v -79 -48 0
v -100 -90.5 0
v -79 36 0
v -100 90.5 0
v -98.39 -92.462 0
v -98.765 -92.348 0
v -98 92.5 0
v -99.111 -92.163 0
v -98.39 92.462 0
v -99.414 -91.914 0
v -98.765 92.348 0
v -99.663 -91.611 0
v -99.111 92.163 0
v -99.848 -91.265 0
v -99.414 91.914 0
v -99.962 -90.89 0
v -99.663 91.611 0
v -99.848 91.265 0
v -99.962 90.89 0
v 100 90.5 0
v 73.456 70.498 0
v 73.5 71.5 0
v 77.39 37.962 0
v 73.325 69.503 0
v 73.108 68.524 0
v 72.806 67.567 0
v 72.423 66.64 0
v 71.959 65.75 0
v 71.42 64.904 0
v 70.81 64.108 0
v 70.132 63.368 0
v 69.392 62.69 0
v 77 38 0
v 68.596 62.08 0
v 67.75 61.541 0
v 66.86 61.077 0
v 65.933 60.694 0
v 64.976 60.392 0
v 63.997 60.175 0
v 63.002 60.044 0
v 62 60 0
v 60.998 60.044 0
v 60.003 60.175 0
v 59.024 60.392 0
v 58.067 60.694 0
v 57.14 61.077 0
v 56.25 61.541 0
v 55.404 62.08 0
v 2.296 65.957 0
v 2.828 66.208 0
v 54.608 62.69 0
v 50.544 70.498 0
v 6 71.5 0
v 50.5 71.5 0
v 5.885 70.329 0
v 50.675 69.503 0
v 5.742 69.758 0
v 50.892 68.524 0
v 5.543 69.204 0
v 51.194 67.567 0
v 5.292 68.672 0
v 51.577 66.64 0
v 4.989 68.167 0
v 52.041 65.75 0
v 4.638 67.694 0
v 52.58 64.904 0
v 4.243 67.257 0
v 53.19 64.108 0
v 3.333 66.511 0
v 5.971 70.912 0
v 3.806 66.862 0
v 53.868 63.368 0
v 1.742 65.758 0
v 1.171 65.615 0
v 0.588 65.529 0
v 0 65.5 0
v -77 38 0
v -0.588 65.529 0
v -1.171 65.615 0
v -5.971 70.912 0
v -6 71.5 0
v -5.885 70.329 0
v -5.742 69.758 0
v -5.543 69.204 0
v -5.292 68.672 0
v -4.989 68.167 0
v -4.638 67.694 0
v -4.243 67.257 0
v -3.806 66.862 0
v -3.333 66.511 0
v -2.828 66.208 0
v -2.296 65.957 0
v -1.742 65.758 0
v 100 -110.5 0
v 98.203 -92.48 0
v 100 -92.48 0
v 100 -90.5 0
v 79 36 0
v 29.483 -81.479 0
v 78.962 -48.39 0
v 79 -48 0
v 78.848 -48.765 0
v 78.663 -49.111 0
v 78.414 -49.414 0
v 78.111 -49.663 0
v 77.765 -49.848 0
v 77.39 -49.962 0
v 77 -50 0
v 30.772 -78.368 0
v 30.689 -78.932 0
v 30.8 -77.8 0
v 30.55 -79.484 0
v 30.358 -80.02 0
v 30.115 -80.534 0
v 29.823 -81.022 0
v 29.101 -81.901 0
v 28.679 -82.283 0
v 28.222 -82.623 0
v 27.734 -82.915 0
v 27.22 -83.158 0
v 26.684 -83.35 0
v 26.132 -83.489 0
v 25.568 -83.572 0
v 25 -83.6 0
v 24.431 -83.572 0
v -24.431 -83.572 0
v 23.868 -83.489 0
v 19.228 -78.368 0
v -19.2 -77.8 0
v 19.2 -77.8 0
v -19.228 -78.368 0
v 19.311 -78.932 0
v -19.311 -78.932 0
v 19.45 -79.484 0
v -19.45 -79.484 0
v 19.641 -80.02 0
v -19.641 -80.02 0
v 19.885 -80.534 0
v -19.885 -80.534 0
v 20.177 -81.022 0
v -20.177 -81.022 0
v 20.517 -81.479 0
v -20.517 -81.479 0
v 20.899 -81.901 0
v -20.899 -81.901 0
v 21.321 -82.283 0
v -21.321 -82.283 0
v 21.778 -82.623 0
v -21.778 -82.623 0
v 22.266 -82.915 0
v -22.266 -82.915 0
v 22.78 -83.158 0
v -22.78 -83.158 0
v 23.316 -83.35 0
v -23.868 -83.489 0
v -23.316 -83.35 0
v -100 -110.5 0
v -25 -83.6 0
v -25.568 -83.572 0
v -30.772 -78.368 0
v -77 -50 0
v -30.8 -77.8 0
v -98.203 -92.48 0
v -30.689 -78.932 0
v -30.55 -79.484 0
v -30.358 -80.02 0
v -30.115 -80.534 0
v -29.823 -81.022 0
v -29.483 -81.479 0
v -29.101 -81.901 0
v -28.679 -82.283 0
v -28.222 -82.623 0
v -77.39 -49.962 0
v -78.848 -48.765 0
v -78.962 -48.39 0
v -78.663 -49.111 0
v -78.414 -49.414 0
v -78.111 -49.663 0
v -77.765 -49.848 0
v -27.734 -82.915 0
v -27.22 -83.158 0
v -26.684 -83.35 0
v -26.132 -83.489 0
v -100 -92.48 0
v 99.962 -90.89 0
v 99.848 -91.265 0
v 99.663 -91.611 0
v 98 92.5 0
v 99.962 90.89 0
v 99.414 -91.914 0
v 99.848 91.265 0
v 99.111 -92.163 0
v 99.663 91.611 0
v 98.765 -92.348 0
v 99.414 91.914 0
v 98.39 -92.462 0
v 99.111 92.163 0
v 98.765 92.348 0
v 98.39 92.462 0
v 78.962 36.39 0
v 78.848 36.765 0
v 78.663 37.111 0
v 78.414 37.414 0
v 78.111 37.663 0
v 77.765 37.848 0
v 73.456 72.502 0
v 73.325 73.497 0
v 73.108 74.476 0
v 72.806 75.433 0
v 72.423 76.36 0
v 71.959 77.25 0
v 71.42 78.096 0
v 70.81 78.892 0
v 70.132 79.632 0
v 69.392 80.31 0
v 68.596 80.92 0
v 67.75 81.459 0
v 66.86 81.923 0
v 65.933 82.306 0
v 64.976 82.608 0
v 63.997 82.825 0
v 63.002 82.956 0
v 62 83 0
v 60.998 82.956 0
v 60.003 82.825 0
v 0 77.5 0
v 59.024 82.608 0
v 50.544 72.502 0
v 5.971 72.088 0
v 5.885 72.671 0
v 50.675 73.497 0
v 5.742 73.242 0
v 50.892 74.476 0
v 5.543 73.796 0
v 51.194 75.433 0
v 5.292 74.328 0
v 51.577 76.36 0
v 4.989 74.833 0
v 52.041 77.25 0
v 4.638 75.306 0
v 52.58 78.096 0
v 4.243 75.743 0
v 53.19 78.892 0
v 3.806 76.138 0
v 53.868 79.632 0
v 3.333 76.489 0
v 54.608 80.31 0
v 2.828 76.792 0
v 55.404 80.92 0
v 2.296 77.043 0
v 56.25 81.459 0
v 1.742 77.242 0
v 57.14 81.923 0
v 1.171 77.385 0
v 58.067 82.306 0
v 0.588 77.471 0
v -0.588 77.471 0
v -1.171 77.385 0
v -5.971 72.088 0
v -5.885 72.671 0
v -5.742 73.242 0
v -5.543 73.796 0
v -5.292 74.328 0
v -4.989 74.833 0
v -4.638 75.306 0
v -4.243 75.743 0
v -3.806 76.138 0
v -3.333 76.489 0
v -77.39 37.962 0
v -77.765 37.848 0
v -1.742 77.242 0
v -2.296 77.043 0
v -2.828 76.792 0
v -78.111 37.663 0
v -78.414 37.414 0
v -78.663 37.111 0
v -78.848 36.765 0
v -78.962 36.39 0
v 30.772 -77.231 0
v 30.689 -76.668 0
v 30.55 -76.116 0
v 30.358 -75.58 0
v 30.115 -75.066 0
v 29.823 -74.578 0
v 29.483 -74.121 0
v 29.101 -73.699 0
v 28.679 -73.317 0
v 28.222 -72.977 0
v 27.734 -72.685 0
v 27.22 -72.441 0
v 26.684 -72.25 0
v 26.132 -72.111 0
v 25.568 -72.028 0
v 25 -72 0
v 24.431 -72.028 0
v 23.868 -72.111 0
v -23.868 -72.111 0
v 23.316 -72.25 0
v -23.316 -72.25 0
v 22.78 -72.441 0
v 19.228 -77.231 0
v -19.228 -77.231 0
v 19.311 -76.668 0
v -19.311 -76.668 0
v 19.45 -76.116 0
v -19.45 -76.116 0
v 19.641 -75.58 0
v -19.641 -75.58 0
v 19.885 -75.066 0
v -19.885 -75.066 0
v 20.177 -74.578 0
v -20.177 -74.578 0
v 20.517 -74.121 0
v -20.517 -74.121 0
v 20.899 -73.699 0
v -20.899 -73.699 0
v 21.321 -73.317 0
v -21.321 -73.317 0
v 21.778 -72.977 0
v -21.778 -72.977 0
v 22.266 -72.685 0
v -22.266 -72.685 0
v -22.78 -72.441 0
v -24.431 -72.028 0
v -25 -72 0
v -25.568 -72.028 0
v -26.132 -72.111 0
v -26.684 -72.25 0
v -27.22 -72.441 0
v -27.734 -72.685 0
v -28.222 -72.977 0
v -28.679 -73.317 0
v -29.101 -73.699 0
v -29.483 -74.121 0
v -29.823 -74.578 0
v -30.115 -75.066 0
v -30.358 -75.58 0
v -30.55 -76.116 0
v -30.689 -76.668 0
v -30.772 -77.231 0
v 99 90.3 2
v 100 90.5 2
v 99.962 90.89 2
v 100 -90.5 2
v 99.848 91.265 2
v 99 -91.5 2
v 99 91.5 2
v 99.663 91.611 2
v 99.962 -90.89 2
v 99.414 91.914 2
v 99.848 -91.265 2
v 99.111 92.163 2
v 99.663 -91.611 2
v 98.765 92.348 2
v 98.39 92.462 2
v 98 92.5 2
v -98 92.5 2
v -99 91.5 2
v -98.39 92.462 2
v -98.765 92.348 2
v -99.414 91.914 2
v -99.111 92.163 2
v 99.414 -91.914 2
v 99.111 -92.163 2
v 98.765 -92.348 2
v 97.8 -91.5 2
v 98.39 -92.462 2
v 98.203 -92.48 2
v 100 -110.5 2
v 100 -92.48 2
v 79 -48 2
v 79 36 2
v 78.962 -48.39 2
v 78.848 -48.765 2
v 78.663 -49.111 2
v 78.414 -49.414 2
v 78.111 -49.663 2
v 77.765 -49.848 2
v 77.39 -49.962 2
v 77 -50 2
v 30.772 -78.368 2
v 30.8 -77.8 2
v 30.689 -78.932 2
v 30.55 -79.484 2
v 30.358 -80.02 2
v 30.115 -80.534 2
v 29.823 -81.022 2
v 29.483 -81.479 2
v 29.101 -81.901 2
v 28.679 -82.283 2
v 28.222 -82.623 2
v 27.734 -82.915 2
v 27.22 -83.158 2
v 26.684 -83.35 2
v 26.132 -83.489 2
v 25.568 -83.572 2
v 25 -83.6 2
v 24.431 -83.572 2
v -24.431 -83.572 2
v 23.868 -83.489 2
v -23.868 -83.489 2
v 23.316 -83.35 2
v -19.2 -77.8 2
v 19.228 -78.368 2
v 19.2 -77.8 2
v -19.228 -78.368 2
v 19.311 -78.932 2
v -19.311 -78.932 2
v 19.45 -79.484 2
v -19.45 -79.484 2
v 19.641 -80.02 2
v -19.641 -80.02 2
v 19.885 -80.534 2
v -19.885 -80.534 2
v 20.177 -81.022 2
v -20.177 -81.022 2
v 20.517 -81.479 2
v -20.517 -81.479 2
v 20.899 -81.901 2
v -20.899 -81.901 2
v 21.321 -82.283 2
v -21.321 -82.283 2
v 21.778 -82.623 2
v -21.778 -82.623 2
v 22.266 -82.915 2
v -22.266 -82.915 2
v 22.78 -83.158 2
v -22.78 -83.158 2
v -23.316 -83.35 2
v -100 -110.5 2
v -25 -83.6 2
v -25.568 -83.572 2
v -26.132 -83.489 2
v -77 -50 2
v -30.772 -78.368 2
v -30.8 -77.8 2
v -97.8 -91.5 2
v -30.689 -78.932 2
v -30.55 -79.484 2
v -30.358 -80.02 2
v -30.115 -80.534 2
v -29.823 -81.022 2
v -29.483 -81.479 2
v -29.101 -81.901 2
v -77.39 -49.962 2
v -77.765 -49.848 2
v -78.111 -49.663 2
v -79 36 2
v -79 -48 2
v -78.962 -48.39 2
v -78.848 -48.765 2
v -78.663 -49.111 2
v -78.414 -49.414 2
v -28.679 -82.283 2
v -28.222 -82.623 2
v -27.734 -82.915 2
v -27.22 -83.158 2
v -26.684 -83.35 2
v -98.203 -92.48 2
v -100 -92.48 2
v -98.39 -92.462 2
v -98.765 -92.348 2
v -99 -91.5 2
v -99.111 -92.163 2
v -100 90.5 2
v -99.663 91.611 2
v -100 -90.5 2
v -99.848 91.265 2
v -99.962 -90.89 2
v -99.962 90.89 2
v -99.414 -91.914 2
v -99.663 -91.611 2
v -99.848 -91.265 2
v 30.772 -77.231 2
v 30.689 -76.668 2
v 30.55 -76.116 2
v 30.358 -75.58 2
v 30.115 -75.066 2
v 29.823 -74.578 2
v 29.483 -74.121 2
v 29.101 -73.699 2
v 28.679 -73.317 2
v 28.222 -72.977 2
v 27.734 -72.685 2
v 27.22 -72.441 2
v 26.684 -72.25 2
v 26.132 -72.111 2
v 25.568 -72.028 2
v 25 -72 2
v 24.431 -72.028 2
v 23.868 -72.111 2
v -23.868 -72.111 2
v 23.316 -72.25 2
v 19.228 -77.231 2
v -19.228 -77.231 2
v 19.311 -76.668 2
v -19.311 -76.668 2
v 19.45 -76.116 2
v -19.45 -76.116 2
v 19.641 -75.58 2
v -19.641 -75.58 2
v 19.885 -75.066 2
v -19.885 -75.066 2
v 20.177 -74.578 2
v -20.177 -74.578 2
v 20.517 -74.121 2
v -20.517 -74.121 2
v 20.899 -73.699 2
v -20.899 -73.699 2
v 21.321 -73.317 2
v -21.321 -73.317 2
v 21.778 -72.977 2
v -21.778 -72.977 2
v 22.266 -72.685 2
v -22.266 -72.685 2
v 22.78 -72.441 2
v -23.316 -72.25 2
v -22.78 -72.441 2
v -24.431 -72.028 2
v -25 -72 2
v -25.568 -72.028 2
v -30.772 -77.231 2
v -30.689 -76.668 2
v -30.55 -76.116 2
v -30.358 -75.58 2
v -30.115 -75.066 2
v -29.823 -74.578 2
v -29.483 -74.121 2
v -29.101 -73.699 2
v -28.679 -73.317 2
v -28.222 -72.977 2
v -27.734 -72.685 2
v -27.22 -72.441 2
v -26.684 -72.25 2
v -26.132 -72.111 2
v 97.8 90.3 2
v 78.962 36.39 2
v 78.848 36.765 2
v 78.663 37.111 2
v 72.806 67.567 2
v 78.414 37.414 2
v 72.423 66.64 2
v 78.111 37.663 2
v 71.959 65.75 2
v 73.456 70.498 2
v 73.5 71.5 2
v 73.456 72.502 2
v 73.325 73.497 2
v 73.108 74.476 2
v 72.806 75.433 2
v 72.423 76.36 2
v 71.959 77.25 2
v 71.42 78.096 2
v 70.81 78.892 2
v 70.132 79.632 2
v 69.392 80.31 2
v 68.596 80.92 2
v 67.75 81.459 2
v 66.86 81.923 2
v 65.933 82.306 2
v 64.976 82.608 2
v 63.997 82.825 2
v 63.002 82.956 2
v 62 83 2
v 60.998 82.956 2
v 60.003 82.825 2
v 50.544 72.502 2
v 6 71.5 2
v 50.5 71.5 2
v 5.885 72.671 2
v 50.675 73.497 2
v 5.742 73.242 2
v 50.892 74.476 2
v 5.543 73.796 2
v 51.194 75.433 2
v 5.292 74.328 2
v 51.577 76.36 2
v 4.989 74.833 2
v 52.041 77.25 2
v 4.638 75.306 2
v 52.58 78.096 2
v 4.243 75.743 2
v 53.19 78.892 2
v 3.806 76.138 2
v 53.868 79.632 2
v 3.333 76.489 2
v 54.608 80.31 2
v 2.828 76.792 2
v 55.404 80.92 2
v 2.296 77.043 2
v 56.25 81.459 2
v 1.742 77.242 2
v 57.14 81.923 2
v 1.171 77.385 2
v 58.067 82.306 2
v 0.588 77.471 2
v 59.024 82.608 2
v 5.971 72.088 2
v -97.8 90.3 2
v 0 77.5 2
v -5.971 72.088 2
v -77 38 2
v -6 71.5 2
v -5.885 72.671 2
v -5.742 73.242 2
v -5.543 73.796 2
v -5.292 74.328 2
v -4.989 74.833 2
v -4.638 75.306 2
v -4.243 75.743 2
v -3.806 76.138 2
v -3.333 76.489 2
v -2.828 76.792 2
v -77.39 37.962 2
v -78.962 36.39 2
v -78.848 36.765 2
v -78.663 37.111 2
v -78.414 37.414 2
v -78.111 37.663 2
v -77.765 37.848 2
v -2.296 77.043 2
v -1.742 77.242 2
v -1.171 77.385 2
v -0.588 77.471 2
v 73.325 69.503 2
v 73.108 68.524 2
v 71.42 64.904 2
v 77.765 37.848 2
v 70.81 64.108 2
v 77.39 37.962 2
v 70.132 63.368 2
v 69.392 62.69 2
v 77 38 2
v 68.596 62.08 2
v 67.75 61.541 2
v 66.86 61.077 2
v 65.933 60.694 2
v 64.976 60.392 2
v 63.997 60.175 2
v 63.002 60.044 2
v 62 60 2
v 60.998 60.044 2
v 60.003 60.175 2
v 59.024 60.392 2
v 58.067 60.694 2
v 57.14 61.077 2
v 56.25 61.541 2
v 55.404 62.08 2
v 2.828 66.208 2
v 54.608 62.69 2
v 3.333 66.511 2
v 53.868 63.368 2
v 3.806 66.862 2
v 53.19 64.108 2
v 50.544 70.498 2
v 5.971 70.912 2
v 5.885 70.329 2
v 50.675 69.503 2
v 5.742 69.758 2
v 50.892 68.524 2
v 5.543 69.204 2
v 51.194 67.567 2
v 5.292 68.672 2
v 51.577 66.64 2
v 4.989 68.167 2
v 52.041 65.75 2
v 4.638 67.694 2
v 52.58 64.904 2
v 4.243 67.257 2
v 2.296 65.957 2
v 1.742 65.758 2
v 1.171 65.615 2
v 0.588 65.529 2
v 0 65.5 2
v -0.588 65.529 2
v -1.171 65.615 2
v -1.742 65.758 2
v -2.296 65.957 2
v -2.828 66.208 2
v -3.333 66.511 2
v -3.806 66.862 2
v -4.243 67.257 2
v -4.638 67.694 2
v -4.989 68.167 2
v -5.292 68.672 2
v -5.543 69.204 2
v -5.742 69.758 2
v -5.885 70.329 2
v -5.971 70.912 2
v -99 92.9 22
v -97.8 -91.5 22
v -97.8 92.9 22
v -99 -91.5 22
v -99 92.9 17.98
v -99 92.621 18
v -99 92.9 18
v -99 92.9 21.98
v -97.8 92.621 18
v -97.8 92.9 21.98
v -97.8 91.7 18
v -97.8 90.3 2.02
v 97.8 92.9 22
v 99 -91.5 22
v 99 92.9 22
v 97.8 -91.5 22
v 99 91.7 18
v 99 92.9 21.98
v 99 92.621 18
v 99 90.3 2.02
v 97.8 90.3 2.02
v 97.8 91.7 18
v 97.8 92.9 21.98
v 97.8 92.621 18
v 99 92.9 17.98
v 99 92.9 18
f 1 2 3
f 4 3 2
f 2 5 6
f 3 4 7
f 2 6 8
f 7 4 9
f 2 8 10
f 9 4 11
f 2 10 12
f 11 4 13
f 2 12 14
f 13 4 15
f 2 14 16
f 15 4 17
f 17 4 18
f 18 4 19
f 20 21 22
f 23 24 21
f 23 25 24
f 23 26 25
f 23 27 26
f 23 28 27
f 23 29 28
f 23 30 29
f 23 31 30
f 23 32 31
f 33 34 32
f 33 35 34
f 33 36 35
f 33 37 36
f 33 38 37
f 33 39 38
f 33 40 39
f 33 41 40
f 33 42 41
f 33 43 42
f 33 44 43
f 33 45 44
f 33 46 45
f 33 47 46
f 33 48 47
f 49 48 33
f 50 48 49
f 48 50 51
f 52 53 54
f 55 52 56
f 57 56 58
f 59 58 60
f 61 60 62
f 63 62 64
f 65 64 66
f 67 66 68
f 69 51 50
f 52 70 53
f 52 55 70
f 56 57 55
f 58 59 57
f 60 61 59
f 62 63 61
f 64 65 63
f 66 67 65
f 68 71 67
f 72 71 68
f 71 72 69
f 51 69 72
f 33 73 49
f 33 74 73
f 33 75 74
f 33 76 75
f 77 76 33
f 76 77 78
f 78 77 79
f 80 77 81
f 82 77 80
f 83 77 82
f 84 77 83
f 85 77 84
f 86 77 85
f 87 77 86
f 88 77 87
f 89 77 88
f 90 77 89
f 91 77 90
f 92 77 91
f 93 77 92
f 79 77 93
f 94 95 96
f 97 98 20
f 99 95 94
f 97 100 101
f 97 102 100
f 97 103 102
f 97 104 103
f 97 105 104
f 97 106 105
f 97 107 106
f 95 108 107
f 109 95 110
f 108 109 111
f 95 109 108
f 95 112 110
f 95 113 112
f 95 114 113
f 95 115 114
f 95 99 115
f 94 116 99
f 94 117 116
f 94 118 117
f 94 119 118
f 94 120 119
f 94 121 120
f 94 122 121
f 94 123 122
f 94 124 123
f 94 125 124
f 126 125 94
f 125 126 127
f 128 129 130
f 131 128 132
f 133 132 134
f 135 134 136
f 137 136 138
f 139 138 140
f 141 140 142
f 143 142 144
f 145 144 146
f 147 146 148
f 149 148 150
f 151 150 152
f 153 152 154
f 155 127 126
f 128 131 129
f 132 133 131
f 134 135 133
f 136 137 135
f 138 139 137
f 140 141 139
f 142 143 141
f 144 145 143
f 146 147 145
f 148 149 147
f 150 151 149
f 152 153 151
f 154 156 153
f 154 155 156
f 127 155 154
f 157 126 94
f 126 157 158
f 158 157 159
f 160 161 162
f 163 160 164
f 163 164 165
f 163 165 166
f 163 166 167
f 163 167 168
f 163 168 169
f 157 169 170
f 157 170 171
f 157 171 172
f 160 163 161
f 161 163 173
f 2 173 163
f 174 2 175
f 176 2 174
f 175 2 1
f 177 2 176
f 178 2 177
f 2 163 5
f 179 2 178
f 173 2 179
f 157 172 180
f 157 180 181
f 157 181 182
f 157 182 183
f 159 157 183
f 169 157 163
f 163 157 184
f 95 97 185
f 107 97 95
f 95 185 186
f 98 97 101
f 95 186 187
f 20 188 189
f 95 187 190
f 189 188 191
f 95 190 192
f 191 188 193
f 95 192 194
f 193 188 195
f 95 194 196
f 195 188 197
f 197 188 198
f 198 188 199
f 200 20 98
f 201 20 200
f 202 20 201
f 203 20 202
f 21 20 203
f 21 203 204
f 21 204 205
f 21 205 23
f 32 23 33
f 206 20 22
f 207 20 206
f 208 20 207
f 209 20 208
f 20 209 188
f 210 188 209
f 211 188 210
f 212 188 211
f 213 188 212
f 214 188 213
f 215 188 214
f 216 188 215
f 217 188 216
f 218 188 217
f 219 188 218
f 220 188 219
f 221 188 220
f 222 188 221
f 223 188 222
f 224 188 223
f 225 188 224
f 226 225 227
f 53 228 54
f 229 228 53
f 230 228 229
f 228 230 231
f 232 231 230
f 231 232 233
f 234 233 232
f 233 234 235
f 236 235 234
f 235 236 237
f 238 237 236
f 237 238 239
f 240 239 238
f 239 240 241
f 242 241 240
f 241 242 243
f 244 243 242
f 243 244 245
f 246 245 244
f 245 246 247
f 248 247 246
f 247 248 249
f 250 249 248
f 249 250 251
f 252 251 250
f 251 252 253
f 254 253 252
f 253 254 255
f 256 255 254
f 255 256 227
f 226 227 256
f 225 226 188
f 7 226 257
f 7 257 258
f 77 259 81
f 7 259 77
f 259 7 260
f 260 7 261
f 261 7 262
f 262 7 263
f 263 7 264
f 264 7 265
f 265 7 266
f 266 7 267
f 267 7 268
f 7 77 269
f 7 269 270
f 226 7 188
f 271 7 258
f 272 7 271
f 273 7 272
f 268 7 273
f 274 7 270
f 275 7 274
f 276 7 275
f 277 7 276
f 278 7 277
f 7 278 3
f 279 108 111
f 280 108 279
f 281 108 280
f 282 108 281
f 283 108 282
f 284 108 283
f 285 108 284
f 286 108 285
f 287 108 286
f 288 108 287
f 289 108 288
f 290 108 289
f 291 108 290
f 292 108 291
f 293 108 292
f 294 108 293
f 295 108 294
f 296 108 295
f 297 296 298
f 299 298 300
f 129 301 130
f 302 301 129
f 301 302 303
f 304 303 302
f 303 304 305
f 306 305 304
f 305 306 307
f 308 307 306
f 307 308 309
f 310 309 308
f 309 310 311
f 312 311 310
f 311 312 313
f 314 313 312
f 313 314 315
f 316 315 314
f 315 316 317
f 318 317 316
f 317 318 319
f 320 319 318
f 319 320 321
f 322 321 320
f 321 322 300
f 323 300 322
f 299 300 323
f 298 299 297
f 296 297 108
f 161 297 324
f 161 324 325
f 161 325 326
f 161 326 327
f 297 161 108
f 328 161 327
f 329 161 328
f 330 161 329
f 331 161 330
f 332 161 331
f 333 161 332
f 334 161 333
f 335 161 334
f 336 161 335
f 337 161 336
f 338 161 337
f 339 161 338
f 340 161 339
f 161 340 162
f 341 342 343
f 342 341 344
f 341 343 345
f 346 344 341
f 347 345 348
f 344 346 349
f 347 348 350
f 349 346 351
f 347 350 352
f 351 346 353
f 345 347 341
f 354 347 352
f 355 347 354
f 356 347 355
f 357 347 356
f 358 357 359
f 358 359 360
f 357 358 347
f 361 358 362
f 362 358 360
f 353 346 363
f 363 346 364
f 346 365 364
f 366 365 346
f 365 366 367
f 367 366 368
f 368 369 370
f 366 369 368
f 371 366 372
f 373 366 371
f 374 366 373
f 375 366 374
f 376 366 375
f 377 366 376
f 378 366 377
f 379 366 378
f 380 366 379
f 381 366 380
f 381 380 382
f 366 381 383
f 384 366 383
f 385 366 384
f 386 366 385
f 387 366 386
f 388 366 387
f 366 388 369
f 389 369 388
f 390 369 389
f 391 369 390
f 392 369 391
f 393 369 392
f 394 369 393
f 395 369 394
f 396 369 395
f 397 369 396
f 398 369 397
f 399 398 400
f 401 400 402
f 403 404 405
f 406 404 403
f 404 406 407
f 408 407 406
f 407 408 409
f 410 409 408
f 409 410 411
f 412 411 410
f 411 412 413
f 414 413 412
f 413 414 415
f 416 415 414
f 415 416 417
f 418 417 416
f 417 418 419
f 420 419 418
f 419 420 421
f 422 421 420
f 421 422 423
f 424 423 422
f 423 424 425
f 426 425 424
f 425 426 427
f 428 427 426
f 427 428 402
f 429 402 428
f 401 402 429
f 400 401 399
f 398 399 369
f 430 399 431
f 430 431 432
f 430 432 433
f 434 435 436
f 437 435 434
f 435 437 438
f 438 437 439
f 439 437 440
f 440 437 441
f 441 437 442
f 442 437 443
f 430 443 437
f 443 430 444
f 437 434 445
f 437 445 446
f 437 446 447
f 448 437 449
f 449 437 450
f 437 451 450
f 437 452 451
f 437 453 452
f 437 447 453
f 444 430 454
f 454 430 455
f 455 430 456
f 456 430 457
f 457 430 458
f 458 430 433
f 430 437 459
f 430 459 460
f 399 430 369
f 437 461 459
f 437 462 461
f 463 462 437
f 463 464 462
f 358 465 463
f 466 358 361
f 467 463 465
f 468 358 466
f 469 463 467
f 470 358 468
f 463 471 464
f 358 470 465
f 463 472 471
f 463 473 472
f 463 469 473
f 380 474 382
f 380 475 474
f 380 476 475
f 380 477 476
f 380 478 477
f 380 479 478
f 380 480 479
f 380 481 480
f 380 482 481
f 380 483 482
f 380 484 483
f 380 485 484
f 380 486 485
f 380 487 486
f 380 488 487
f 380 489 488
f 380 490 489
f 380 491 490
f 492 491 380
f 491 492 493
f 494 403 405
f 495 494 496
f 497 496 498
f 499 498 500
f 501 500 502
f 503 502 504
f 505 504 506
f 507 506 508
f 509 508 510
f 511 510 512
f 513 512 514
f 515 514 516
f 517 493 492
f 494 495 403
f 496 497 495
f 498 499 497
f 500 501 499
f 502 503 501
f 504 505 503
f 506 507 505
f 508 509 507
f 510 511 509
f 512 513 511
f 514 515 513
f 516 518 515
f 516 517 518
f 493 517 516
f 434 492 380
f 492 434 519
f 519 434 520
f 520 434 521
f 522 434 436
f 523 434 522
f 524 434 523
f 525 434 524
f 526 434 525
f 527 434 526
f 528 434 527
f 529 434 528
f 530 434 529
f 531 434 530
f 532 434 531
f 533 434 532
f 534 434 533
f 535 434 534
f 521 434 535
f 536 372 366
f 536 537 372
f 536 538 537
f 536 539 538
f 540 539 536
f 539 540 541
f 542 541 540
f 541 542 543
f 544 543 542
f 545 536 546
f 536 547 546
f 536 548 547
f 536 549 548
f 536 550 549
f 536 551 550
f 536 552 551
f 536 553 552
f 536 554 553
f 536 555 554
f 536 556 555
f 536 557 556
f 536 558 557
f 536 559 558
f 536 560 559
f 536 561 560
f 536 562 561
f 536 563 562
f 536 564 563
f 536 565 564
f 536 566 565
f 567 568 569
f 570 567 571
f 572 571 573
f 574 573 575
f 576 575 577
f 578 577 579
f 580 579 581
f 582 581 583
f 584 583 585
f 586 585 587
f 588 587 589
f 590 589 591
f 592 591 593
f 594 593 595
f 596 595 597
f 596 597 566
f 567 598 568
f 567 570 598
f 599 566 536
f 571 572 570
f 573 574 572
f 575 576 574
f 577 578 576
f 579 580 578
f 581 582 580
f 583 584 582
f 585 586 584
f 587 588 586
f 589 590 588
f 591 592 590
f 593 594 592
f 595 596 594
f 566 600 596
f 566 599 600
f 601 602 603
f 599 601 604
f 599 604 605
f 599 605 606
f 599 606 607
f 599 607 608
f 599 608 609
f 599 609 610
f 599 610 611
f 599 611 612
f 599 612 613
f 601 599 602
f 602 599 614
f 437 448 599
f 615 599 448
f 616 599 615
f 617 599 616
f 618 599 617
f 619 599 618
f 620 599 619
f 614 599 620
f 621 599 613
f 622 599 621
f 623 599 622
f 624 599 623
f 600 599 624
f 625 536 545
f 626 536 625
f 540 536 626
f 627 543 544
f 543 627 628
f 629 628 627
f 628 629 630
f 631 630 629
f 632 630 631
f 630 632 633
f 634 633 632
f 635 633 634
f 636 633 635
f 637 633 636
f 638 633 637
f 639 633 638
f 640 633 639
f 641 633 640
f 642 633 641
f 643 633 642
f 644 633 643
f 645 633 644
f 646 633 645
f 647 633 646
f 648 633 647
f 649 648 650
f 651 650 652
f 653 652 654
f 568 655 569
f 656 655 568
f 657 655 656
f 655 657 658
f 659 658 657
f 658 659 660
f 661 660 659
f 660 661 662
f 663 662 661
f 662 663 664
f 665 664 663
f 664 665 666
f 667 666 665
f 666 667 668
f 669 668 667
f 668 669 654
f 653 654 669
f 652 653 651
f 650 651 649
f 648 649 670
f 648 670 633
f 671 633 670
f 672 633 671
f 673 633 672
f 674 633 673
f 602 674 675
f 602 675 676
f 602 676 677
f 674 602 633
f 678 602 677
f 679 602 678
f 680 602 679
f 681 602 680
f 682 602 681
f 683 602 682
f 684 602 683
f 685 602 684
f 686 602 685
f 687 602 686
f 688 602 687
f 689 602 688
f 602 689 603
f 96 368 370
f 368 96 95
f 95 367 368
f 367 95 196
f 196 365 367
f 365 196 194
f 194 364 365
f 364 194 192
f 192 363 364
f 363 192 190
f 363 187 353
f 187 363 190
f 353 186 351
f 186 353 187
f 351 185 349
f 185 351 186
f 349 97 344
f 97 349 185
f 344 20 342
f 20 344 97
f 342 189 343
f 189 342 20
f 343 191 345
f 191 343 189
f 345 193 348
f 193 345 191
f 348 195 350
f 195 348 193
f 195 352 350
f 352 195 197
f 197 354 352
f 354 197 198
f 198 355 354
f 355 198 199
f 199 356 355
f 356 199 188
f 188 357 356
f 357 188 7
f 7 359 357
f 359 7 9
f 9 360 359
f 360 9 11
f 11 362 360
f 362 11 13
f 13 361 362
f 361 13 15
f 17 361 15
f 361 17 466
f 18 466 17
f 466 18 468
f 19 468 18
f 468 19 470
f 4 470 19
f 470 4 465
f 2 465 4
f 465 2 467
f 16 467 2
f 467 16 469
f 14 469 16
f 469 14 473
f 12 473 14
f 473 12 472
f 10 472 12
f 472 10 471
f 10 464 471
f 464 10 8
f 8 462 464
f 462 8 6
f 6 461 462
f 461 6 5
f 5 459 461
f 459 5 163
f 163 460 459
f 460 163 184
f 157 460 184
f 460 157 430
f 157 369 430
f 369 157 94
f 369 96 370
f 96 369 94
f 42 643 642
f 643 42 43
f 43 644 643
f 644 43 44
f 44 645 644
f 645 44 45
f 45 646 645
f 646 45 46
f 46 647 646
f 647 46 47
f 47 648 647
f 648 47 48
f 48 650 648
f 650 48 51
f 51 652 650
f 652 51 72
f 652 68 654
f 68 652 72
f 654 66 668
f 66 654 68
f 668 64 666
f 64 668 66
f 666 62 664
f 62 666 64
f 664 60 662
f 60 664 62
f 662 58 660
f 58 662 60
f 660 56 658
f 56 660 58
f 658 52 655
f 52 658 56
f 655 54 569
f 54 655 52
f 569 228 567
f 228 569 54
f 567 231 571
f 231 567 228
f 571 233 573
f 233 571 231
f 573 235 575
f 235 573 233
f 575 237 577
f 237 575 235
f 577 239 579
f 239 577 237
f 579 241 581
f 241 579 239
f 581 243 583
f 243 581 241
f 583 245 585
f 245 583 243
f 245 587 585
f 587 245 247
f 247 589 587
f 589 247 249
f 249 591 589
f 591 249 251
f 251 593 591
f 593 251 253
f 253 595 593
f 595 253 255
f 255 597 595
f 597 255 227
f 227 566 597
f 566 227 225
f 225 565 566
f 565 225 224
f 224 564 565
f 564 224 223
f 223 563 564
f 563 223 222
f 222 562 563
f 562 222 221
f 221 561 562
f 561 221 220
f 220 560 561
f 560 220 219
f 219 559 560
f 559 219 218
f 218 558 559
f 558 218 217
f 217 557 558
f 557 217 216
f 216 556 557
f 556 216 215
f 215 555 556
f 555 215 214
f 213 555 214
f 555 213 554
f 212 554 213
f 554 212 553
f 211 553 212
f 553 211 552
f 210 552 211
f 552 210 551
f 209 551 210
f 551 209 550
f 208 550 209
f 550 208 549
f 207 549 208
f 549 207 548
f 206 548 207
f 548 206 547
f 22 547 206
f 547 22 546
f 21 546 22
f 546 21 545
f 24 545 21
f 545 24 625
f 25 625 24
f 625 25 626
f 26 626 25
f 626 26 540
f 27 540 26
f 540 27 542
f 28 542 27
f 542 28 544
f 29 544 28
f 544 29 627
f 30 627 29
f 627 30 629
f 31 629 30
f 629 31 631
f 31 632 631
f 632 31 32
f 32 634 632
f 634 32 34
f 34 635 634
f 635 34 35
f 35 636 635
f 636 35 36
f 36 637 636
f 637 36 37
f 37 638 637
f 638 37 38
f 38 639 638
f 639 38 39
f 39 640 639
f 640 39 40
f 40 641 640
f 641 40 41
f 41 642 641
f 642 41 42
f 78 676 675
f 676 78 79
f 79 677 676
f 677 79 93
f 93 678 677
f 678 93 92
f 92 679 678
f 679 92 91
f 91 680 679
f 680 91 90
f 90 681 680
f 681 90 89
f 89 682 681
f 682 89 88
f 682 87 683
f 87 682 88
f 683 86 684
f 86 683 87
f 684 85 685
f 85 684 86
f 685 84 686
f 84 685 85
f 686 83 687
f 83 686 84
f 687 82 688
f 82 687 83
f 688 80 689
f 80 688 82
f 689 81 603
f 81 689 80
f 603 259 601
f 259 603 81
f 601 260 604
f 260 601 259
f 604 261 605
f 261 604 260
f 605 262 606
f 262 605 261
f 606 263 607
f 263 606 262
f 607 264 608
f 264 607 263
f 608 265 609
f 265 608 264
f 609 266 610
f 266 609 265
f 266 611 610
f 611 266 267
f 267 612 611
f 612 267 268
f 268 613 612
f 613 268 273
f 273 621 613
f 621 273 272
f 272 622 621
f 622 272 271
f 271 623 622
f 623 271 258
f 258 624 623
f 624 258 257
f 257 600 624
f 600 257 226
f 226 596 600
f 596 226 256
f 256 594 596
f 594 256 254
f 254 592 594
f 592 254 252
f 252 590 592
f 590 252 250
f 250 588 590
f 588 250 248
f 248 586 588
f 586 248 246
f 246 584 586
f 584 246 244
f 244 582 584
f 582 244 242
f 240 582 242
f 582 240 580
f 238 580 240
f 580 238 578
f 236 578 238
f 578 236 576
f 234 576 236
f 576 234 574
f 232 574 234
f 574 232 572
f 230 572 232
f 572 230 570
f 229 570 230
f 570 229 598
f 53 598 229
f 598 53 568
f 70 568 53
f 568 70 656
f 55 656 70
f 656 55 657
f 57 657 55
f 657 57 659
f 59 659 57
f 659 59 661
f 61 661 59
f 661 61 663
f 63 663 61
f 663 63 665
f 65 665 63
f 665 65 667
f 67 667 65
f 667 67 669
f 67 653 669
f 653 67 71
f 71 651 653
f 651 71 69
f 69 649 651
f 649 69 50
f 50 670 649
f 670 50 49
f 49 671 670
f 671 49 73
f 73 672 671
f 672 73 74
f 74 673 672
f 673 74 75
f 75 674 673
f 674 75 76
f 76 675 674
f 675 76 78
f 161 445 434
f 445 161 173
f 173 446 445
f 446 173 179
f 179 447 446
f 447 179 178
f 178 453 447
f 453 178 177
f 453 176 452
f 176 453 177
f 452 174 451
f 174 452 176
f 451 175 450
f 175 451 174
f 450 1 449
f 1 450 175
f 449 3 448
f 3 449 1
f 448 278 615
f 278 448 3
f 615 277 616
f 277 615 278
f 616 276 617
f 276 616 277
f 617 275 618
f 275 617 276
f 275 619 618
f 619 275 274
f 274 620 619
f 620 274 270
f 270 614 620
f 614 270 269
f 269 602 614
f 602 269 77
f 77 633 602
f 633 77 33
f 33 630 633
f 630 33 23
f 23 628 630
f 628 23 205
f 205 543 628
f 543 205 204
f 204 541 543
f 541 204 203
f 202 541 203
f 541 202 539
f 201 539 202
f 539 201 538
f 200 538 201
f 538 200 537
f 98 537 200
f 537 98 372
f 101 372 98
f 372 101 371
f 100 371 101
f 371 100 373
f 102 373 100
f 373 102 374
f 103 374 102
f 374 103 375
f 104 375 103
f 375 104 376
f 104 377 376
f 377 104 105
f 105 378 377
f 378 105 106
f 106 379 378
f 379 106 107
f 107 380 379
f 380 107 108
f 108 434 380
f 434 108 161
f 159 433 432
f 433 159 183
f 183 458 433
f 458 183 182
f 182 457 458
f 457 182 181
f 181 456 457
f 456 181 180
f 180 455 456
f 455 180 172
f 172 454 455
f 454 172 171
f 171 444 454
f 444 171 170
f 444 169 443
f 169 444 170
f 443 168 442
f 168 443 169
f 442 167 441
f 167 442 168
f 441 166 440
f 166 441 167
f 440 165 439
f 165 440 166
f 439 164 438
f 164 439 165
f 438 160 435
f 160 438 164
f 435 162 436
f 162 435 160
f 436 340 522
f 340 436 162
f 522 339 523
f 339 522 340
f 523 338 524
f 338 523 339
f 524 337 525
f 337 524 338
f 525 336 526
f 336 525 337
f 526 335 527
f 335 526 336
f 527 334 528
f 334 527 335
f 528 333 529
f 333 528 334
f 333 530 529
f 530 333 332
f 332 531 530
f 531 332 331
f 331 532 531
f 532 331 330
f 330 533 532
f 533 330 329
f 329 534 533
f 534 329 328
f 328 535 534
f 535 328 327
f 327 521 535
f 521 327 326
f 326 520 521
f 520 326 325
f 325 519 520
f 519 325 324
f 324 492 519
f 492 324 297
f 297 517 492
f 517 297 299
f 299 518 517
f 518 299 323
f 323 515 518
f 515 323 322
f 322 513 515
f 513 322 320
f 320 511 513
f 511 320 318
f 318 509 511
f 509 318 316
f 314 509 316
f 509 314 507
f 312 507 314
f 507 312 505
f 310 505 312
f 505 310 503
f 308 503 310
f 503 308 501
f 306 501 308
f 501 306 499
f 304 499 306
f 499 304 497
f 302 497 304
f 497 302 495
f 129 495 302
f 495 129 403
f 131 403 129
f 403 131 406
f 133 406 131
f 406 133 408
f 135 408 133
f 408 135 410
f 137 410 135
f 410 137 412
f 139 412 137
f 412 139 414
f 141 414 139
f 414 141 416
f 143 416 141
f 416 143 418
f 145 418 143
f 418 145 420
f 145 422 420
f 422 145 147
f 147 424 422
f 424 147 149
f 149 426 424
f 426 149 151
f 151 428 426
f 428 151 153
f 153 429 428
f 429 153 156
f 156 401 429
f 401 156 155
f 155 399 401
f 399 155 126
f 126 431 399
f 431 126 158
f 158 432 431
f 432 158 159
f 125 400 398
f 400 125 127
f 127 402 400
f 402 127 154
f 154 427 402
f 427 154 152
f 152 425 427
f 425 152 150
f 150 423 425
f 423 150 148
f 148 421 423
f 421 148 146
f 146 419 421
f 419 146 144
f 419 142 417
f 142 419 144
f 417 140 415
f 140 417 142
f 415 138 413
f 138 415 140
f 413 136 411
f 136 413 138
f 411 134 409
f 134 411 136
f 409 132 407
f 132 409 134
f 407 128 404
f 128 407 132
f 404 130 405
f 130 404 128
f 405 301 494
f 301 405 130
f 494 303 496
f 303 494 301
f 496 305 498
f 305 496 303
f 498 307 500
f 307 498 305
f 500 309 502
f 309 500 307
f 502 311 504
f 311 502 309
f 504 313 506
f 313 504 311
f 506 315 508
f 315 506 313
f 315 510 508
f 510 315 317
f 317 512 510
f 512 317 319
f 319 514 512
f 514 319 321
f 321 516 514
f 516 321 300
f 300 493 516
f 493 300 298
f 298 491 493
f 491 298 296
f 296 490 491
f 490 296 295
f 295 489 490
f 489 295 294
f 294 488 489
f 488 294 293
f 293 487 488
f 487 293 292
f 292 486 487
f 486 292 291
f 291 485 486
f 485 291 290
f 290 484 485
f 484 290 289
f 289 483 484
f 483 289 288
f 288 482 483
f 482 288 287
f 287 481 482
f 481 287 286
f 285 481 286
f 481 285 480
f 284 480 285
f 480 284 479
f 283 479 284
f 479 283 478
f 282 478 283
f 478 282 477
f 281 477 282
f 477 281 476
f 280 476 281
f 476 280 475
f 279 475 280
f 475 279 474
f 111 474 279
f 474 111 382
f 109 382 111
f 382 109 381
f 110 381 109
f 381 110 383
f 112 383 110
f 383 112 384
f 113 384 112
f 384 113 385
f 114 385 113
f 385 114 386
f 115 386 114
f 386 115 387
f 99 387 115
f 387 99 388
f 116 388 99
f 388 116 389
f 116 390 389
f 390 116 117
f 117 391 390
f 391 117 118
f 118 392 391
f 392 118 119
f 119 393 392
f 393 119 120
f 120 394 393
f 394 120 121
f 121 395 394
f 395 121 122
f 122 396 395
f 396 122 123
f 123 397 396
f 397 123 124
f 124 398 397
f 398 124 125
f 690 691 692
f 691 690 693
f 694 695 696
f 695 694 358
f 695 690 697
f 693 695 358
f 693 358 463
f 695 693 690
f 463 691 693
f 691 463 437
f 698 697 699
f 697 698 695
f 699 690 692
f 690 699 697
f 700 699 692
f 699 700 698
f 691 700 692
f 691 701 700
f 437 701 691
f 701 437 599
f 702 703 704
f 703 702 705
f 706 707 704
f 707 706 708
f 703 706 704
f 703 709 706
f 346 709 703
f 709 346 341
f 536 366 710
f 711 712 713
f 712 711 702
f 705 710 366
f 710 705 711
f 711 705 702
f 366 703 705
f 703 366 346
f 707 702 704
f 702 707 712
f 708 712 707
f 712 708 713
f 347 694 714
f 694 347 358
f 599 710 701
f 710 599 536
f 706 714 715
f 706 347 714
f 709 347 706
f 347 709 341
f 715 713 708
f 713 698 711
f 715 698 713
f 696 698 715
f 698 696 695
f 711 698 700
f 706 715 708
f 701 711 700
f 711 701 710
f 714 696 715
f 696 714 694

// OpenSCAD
//
// Sloped screen/front panel with full-width bottom glue lip
// and upper angled lip
//
// - centered screen cutout: 158 x 88 mm
// - screen keepout behind the panel, so other parts are not too close
// - Raspberry Pi AI Camera cutout
// - PIR cutout: 23 mm
// - 2x Same Sky pushbutton cutouts: 11.6 mm
// - full-width bottom glue lip
// - upper angled lip with 1 mm inset
// - side tray walls as wedges so they close into the upper lip
//
// Export:
//   part = "panel";   // STL
//   part = "preview"; // with dummy geometry
//

part = "panel";   // "panel" | "preview"

// =========================
// MAIN SIZE
// =========================

// visible main panel
panel_w = 200.0;
panel_h = 185.0;

// bottom glue lip: SAME WIDTH as panel
glue_lip_w = panel_w;
glue_lip_h = 18.0;

plate_t = 2.0;
outer_corner_r = 2.0;

// tray walls / "Wanne"
rim_inset = 1.0;
rim_t     = 1.2;
rim_depth = 20.0;

// upper angled lip
top_lip_t         = rim_t;
top_lip_depth     = 16.0;
top_lip_angle_deg = 5.0;   // if you meant relative to the existing 60°/30° section, try 25.0

// =========================
// SCREEN + KEEPOUT
// =========================

// visible cutout
screen_w = 158.0;
screen_h = 88.0;
screen_r = 2.0;
screen_cx = 0.0;
screen_cy = -6.0;

// larger real module behind the opening
screen_keepout_w = 172.0;
screen_keepout_h = 104.0;

// clearances from keepout to neighboring cutouts
upper_clear = 14.0;
lower_clear = 14.0;

// =========================
// CAMERA / PIR / BUTTONS
// =========================

// Raspberry Pi AI Camera
// default: round lens hole only
use_camera_rect = false;
camera_hole_d = 12.0;
camera_rect_w = 14.0;
camera_rect_h = 14.0;
camera_rect_r = 1.0;

// PIR
pir_hole_d = 23.0;

// Buttons
button_hole_d = 11.6;
button_spacing = 50.0;  // center-to-center

// layout logic
upper_row_cy = screen_cy + screen_keepout_h/2 + upper_clear + max(camera_hole_d/2, pir_hole_d/2);
button_cy    = screen_cy - screen_keepout_h/2 - lower_clear - button_hole_d/2;

// positions
camera_cx = 0.0;
camera_cy = upper_row_cy;

pir_cx = 62.0;
pir_cy = upper_row_cy;

button1_cx = -button_spacing/2;
button2_cx =  button_spacing/2;

// =========================
// PREVIEW DUMMIES
// =========================

dummy_screen_t = 4.0;
dummy_camera_d = 11.9;
dummy_pir_d    = 23.0;
dummy_button_d = 11.6;

show_keepout_preview = true;

// =========================
// DERIVED VALUES
// =========================

main_bottom_y = -panel_h/2;
main_top_y    =  panel_h/2;

y_bottom_in   = main_bottom_y + rim_inset;
y_top_in      = main_top_y    - rim_inset;

top_lip_rise = top_lip_depth * tan(top_lip_angle_deg);

y_lip_front_center = y_top_in - top_lip_t/2;
y_lip_back_center  = y_lip_front_center + top_lip_rise;

y_lip_back_high = y_lip_back_center + top_lip_t/2;

// basic sanity
assert(glue_lip_w == panel_w, "Bottom glue lip must have the same width as the panel.");
assert(camera_cy + max(camera_hole_d/2, camera_rect_h/2) < main_top_y - 4, "Camera too close to top edge.");
assert(pir_cy + pir_hole_d/2 < main_top_y - 4, "PIR too close to top edge.");
assert(button_cy - button_hole_d/2 > main_bottom_y + 4, "Buttons too close to bottom edge.");

// =========================
// 2D HELPERS
// =========================

module rounded_rect_2d(w, h, r) {
    rr = min(r, min(w, h) / 2);
    if (rr <= 0) {
        square([w, h], center = true);
    } else {
        hull() {
            for (x = [-w/2 + rr, w/2 - rr])
                for (y = [-h/2 + rr, h/2 - rr])
                    translate([x, y]) circle(r = rr, $fn = 32);
        }
    }
}

module panel_outline_2d() {
    union() {
        // main panel
        rounded_rect_2d(panel_w, panel_h, outer_corner_r);

        // full-width bottom glue lip
        translate([0, main_bottom_y - glue_lip_h/2 + 0.01])
            square([glue_lip_w, glue_lip_h + 0.02], center = true);
    }
}

module screen_cutout_2d() {
    translate([screen_cx, screen_cy])
        rounded_rect_2d(screen_w, screen_h, screen_r);
}

module camera_cutout_2d() {
    translate([camera_cx, camera_cy]) {
        if (use_camera_rect) {
            rounded_rect_2d(camera_rect_w, camera_rect_h, camera_rect_r);
        } else {
            circle(d = camera_hole_d, $fn = 64);
        }
    }
}

module pir_cutout_2d() {
    translate([pir_cx, pir_cy])
        circle(d = pir_hole_d, $fn = 72);
}

module button_cutouts_2d() {
    translate([button1_cx, button_cy])
        circle(d = button_hole_d, $fn = 64);

    translate([button2_cx, button_cy])
        circle(d = button_hole_d, $fn = 64);
}

// =========================
// FRONT PLATE
// =========================

module front_plate() {
    linear_extrude(height = plate_t, convexity = 10)
        difference() {
            panel_outline_2d();
            screen_cutout_2d();
            camera_cutout_2d();
            pir_cutout_2d();
            button_cutouts_2d();
        }
}

// =========================
// SIDE WALLS AS WEDGES
// =========================
//
// They start at the main panel area only
// and rise toward the upper angled lip,
// so there is no side gap.
//

module side_wall_wedge(x_outer) {
    eps = 0.02;

    front_h = y_top_in - y_bottom_in;
    back_h  = y_lip_back_high - y_bottom_in;

    hull() {
        // front strip
        translate([
            x_outer + rim_t/2,
            (y_bottom_in + y_top_in)/2,
            plate_t + eps/2
        ])
            cube([rim_t, front_h, eps], center = true);

        // rear strip, taller to meet upper lip
        translate([
            x_outer + rim_t/2,
            (y_bottom_in + y_lip_back_high)/2,
            plate_t + rim_depth - eps/2
        ])
            cube([rim_t, back_h, eps], center = true);
    }
}

module left_wall() {
    side_wall_wedge(-panel_w/2 + rim_inset);
}

module right_wall() {
    side_wall_wedge(panel_w/2 - rim_inset - rim_t);
}

// =========================
// UPPER ANGLED LIP
// =========================
//
// 1 mm inset from the left/right edges,
// extends backward and rises slightly.
//

module top_angled_lip() {
    span_x = panel_w - 2*rim_inset;
    eps = 0.02;

    hull() {
        // front strip at top inner edge
        translate([0, y_lip_front_center, plate_t + eps/2])
            cube([span_x, top_lip_t, eps], center = true);

        // rear strip, slightly higher
        translate([0, y_lip_back_center, plate_t + top_lip_depth - eps/2])
            cube([span_x, top_lip_t, eps], center = true);
    }
}

// =========================
// PANEL ASSEMBLY
// =========================

module panel() {
    union() {
        front_plate();
        left_wall();
        right_wall();
        top_angled_lip();
    }
}

// =========================
// PREVIEW
// =========================

module dummy_screen() {
    color([0.1, 0.1, 0.1, 0.45])
        translate([screen_cx, screen_cy, plate_t])
            linear_extrude(height = dummy_screen_t, convexity = 10)
                rounded_rect_2d(screen_w - 1.0, screen_h - 1.0, 1.5);
}

module dummy_screen_keepout() {
    if (show_keepout_preview) {
        color([0.8, 0.2, 0.2, 0.20])
            translate([screen_cx, screen_cy, plate_t + 0.2])
                linear_extrude(height = 8.0, convexity = 10)
                    rounded_rect_2d(screen_keepout_w, screen_keepout_h, 2.0);
    }
}

module dummy_camera() {
    color([0.2, 0.5, 0.8, 0.45])
        translate([camera_cx, camera_cy, plate_t])
            cylinder(h = 8.0, d = dummy_camera_d, $fn = 48);
}

module dummy_pir() {
    color([0.85, 0.85, 0.85, 0.5])
        translate([pir_cx, pir_cy, plate_t])
            cylinder(h = 10.0, d = dummy_pir_d, $fn = 72);
}

module dummy_buttons() {
    color([0.2, 0.2, 0.2, 0.5]) {
        translate([button1_cx, button_cy, plate_t])
            cylinder(h = 10.0, d = dummy_button_d, $fn = 48);

        translate([button2_cx, button_cy, plate_t])
            cylinder(h = 10.0, d = dummy_button_d, $fn = 48);
    }
}

module preview() {
    panel();
    dummy_screen();
    dummy_screen_keepout();
    dummy_camera();
    dummy_pir();
    dummy_buttons();
}

// =========================
// OUTPUT
// =========================

if (part == "preview") {
    preview();
} else {
    panel();
}
